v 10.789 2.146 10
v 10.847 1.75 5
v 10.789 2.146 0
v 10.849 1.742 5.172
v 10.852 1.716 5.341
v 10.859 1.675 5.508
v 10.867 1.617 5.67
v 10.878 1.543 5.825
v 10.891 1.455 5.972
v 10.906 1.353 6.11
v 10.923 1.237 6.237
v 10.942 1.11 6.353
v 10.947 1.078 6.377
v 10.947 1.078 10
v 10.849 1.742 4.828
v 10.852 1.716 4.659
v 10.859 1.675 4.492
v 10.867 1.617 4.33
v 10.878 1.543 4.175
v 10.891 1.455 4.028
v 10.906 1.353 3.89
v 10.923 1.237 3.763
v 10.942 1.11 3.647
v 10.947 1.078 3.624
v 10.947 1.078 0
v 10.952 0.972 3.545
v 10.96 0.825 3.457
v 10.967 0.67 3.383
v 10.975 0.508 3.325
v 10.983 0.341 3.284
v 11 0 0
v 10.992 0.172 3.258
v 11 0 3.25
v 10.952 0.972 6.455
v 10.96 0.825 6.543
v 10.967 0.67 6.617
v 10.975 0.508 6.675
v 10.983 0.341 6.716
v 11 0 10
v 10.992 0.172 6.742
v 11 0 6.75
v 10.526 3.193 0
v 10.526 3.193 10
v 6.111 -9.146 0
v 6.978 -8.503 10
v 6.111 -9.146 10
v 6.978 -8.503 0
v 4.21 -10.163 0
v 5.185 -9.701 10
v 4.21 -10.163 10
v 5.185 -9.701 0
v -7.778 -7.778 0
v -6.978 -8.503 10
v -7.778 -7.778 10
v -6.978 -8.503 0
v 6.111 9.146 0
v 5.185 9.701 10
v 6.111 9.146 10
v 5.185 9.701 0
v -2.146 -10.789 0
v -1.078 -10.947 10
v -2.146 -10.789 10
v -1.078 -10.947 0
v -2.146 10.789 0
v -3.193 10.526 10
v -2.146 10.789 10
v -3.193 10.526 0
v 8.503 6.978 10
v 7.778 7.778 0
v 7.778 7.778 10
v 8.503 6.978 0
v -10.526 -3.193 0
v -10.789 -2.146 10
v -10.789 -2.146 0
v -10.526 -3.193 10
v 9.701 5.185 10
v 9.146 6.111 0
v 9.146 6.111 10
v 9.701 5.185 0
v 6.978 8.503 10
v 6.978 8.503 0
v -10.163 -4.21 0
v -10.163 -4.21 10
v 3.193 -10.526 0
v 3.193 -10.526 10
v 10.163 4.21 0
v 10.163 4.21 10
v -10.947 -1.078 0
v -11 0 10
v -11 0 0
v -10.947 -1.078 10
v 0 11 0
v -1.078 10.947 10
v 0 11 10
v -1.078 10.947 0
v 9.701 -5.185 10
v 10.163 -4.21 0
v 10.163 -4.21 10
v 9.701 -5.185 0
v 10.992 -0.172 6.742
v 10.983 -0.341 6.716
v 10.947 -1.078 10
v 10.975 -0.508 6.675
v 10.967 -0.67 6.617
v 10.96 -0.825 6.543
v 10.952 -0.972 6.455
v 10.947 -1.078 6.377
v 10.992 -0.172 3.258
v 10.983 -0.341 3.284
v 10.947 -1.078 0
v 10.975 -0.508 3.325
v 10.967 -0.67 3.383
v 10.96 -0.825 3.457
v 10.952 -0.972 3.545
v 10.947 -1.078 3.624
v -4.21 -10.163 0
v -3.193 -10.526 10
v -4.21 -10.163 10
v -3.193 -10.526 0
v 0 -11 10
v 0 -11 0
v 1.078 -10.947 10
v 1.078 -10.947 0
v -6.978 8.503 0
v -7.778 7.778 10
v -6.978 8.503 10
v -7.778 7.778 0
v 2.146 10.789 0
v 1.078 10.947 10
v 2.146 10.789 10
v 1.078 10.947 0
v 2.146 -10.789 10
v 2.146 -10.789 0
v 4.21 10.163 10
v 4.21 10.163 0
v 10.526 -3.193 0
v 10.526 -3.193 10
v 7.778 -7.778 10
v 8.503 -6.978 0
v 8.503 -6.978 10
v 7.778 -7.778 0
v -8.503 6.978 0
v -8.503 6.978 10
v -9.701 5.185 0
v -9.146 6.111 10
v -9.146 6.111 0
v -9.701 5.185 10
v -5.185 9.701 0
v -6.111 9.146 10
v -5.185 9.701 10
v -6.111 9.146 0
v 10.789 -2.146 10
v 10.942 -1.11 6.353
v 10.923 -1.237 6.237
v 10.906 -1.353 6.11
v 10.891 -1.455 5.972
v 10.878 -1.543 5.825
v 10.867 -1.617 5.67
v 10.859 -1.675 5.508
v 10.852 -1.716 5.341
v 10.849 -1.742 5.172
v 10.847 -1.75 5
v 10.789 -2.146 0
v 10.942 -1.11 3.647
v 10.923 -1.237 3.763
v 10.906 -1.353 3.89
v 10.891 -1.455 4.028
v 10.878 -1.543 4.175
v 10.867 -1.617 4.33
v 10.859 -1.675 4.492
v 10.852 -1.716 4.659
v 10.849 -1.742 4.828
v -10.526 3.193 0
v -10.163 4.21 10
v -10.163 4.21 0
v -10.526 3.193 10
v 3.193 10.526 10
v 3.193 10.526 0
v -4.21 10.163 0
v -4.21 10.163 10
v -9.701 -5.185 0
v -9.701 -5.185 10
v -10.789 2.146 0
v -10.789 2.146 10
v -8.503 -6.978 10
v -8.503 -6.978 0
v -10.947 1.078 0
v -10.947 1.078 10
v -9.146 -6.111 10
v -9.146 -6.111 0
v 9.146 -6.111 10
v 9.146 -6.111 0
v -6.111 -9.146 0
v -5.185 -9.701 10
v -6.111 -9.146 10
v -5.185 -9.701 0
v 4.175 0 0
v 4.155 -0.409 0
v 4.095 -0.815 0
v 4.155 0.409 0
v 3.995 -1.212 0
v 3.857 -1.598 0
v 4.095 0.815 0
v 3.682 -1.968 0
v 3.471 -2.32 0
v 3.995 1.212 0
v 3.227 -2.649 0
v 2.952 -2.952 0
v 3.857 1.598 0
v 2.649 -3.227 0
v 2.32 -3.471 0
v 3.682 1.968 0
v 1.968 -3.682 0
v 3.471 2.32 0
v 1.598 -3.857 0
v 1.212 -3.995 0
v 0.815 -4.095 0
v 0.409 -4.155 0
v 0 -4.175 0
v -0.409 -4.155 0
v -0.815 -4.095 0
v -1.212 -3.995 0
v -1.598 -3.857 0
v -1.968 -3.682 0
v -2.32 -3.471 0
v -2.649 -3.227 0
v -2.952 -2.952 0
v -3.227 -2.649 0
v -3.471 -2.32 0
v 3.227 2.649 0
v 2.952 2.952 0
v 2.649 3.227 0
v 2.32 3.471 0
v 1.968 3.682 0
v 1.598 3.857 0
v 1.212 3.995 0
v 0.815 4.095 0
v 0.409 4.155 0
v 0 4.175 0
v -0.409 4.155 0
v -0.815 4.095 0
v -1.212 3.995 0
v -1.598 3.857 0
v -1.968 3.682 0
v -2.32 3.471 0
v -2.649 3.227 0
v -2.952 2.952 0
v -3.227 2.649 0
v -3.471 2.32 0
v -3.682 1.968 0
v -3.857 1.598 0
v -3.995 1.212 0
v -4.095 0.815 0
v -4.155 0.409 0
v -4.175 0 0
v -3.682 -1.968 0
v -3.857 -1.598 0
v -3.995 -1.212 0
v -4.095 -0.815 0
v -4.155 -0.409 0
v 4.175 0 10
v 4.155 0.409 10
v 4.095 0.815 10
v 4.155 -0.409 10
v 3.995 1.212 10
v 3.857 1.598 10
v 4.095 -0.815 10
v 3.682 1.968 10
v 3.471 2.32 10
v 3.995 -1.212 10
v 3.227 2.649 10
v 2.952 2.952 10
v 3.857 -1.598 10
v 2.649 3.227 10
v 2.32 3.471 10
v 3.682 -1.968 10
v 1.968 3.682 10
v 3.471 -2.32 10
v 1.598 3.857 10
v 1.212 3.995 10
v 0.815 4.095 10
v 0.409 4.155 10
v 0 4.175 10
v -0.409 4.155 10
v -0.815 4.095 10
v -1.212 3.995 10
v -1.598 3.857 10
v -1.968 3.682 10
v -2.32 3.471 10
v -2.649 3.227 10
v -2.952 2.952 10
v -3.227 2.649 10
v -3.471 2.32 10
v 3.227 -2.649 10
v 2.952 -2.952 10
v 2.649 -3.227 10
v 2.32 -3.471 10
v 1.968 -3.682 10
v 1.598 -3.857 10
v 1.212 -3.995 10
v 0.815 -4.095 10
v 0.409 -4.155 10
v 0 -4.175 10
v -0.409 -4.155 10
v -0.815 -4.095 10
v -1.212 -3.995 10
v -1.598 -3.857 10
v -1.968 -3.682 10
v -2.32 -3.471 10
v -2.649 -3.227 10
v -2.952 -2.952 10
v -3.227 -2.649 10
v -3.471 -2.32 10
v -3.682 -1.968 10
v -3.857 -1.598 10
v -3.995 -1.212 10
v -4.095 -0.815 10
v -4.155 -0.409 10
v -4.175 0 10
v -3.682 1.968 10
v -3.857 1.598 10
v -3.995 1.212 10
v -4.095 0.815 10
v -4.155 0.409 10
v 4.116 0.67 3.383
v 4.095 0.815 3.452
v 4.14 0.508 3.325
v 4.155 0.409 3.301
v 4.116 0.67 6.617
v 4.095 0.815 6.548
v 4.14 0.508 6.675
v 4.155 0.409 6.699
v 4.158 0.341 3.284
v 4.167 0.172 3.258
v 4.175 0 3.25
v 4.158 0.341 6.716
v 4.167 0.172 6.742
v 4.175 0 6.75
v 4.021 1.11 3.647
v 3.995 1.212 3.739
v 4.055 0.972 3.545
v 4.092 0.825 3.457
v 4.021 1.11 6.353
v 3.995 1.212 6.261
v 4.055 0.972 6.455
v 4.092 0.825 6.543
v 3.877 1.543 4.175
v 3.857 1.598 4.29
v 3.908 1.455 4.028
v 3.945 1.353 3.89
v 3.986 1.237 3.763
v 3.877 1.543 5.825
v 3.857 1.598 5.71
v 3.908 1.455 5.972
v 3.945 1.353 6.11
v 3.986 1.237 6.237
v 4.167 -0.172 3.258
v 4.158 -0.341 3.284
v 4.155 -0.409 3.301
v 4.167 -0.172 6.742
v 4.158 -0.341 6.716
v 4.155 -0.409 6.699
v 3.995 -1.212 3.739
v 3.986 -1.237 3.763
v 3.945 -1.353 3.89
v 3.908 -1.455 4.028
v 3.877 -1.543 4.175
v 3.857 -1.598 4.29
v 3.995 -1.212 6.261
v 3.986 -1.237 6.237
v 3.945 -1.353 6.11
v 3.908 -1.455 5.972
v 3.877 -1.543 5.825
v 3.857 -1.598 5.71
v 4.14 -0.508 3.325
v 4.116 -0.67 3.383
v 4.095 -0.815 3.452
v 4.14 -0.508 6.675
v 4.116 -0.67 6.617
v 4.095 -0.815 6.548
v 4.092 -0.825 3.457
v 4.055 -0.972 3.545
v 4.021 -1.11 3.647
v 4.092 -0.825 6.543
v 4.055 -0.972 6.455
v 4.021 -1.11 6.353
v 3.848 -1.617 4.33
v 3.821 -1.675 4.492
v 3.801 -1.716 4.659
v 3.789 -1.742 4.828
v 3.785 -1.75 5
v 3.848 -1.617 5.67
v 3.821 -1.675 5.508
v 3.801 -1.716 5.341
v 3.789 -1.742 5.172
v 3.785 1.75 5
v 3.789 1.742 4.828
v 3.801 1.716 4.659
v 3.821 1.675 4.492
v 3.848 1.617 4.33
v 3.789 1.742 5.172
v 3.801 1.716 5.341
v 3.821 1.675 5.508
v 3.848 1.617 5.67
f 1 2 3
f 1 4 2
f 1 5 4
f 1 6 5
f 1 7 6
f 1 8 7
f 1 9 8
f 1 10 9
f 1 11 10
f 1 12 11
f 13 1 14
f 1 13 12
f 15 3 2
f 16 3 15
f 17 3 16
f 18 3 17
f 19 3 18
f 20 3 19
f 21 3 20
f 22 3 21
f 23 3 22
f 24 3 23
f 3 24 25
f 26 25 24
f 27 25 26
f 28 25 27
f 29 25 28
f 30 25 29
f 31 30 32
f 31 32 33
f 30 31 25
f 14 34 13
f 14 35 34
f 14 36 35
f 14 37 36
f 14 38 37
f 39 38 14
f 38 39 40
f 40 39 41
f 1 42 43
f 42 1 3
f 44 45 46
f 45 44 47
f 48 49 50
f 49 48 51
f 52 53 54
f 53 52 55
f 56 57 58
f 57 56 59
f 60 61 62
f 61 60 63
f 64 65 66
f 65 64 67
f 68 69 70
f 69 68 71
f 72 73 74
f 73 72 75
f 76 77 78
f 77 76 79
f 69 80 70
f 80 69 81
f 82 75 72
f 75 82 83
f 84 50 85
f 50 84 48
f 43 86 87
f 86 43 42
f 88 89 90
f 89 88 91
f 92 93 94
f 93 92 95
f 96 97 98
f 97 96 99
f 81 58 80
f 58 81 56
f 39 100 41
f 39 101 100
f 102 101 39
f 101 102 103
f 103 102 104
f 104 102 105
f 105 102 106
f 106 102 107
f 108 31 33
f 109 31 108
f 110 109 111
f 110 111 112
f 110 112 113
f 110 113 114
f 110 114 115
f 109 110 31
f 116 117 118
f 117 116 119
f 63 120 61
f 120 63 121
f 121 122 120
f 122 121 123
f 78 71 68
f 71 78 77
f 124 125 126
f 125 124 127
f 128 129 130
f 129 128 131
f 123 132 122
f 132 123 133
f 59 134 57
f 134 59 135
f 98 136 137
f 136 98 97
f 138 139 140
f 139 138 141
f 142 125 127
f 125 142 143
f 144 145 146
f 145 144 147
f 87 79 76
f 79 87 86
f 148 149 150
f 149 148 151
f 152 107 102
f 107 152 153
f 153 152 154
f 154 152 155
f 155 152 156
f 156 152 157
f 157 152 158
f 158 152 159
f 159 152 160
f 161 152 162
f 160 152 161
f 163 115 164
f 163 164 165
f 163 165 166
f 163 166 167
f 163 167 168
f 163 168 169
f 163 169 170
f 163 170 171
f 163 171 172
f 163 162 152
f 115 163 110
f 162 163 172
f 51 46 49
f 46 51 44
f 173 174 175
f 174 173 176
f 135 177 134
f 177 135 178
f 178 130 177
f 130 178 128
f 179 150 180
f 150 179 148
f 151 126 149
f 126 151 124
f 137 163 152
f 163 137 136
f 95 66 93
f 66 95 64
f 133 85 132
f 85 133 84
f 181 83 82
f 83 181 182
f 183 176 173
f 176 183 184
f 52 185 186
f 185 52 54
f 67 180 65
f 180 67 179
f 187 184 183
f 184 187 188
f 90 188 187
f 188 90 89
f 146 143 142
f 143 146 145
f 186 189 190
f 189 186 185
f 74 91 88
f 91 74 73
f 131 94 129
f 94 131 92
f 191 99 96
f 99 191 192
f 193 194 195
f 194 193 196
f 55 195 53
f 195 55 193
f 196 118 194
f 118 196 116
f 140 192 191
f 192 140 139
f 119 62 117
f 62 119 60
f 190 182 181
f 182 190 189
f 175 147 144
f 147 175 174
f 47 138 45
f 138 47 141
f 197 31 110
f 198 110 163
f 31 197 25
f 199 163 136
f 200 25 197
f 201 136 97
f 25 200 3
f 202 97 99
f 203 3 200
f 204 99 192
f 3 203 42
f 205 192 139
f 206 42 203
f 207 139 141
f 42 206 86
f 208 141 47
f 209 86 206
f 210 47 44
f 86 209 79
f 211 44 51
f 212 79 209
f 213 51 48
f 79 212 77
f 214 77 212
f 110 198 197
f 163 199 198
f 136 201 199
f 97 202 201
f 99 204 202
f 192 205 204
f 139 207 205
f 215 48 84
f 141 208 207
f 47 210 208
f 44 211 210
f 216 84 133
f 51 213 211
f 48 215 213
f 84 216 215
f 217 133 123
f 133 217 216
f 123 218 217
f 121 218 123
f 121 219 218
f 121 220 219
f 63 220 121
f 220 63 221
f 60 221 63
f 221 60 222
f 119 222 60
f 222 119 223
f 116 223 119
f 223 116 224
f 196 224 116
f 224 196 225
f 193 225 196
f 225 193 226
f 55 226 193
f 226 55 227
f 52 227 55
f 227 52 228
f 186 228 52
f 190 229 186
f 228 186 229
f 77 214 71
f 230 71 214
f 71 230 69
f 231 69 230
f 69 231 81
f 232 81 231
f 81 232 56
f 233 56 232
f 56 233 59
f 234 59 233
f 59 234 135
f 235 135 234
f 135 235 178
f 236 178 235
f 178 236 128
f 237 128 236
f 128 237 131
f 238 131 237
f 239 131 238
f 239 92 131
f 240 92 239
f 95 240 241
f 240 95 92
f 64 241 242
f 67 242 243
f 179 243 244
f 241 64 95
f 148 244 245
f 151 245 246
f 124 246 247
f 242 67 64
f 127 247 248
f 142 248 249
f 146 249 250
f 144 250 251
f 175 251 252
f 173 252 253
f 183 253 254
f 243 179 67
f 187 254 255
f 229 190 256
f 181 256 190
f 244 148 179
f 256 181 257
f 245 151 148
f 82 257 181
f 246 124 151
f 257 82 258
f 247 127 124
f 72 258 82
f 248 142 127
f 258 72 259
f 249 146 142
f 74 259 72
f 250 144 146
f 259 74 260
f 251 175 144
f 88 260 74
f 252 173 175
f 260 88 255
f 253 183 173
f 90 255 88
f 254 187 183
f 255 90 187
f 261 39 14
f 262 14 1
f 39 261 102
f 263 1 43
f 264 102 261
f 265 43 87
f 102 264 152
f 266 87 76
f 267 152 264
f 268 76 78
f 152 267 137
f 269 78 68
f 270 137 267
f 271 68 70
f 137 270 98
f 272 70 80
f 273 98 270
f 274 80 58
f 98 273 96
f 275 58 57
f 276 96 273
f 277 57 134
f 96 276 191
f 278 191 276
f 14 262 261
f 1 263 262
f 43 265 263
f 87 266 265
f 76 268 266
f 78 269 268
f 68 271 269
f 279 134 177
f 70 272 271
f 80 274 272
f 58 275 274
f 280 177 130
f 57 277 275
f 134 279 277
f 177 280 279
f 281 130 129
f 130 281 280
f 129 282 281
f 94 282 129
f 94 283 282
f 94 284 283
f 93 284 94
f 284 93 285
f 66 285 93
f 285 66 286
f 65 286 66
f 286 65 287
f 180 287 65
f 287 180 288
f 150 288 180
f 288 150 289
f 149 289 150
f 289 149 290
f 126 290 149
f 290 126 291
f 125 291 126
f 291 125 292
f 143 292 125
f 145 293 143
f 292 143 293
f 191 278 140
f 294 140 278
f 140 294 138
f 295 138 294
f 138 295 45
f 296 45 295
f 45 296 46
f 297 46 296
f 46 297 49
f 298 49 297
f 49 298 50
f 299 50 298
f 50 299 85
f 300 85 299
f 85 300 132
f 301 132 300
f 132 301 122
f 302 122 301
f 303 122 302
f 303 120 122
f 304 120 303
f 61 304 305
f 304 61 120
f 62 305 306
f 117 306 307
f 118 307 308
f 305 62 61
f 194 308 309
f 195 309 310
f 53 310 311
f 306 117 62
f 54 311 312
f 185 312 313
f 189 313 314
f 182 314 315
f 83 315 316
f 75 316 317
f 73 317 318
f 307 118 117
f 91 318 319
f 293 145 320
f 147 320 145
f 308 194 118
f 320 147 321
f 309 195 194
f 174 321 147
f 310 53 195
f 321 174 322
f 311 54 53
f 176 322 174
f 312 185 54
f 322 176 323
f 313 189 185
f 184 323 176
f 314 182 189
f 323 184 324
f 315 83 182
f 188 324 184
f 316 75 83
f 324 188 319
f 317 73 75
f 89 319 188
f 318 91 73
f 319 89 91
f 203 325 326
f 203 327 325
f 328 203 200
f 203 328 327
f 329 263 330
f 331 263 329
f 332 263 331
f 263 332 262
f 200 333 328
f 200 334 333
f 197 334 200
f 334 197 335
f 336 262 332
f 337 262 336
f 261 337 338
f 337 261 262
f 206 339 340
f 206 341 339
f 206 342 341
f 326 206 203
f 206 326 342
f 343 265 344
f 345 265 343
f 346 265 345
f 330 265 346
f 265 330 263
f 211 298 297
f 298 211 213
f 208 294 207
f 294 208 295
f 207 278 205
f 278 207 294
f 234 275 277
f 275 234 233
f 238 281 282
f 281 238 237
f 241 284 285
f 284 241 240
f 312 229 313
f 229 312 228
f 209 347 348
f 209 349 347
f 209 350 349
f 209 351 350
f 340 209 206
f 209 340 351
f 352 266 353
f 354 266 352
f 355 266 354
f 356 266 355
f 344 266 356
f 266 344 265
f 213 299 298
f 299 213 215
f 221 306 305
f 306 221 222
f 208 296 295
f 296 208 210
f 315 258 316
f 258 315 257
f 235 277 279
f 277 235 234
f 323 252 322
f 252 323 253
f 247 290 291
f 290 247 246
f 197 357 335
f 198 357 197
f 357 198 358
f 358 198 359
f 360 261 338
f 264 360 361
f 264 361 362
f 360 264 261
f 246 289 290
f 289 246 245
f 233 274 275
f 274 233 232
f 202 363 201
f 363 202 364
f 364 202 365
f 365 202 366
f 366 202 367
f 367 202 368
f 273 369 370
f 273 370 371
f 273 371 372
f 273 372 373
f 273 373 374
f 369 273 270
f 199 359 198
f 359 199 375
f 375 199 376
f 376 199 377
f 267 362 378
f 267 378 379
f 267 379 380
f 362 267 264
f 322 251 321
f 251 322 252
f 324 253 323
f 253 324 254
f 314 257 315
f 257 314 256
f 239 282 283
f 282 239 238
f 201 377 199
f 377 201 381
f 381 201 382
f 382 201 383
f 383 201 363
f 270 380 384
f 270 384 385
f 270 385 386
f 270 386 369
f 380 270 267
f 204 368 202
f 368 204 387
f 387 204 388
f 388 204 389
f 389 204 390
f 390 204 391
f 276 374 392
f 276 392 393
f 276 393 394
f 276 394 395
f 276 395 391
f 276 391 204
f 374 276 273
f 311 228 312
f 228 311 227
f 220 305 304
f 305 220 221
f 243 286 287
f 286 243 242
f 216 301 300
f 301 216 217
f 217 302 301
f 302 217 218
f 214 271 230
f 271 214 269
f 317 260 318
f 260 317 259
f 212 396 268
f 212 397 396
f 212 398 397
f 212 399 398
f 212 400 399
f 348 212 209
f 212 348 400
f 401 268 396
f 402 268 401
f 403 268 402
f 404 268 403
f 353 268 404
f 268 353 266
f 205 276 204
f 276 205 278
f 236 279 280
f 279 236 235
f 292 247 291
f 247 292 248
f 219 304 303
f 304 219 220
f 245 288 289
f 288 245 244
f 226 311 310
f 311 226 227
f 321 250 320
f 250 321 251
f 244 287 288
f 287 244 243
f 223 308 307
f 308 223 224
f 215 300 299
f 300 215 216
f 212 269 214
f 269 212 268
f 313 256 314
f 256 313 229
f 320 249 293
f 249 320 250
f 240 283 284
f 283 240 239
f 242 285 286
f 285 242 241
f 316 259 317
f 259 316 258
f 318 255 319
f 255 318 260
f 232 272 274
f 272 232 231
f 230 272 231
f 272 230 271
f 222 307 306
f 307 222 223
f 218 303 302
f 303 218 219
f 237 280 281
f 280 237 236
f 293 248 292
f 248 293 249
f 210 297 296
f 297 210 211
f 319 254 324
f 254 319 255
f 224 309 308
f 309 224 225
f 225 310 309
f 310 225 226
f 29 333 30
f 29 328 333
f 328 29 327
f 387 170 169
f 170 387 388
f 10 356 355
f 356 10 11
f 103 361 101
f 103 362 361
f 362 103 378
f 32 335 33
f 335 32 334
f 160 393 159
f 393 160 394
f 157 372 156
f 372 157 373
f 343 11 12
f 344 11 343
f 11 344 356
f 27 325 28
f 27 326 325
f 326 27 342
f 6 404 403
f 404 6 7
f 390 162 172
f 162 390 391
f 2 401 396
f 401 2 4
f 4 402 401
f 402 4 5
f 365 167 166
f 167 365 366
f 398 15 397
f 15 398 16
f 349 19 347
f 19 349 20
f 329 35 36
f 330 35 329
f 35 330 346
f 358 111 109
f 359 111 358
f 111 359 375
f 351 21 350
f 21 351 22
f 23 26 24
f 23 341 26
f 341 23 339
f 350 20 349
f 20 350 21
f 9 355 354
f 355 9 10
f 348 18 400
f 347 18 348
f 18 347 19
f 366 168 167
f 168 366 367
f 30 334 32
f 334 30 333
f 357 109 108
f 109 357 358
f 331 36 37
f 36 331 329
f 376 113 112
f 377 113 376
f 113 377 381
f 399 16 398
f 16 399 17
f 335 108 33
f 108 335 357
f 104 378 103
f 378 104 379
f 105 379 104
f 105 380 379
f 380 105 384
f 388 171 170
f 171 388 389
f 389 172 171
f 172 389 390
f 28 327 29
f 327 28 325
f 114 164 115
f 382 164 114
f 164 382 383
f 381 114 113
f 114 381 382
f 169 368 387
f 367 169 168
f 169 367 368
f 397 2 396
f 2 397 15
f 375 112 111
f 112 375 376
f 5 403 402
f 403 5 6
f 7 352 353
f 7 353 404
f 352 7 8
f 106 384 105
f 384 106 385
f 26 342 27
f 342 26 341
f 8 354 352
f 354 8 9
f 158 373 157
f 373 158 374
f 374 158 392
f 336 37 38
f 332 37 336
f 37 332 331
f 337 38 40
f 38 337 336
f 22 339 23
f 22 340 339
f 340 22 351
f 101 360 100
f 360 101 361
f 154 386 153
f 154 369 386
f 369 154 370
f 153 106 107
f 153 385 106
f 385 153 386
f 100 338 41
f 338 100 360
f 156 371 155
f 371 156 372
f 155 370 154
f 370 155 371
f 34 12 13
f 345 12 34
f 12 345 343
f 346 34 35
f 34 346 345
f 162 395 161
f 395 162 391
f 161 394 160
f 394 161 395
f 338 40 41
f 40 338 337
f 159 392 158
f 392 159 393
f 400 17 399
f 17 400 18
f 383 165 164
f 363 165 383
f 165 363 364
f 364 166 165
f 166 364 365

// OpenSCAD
// file: parameters.scad
// =============================================================================
// Gen-AG Vernier flux-claw hyper-nano — WOUND-AWARE (HARD GATE)
// Improve Gen-AG: tighter m2m 5.11, more copper (165 t), run_clear 0.55
// =============================================================================

wire_awg            = 26;
wire_od             = 0.45;
turns               = 165;      // +10 vs Gen-AG 155
fill                = 0.70;
layers_per_face     = 2;
wind_build_axial    = layers_per_face * wire_od * fill;   // 0.63
wind_build_radial   = 3 * wire_od * fill;                 // 0.945

coil_id_r           = 19.5;
coil_od_r           = 63.0;
span_deg            = 25.0;     // 12 stations; vernier vs 16-pole equiv
former_web          = 1.55;
flange_t            = 0.60;
wall                = 1.2;
slot_w              = 2.4;
mount_hole          = 3.5;
tab_len             = 7.0;

former_bare_h       = former_web + 2 * flange_t;            // 2.75
coil_envelope_h     = former_bare_h + 2 * wind_build_axial; // 4.01

run_clear           = 0.55;
gap_spacer_h        = run_clear + wind_build_axial;         // 1.18
m2m                 = coil_envelope_h + 2 * run_clear;      // 5.11 (beats Gen-AG 5.46)

coil_stations       = 12;
bay_r_in            = coil_id_r - 2.0 - wind_build_radial;
bay_r_out           = coil_od_r + 2.0 + wind_build_radial;
bay_span            = span_deg + 4.0;
bay_offset          = 2.0;
stator_thick        = former_bare_h;
stator_od           = 156.0;
shaft_clear_stator  = 36.0;
coil_mount_r        = 28.0;

// Dual rotors: 8+8 Ø20 vernier poles + 24+24 Ø5 flux claws / edge assists
large_pocket_d      = 20.3;
small_pocket_d      = 5.3;
pocket_h            = 5.2;
large_n             = 8;
R_large             = 50.0;
R_small_inner       = 36.0;     // claw inner
R_small_mid         = 50.0;
R_small_outer       = 64.0;
carrier_od          = 152.0;
carrier_thick       = 7.5;
hub_h               = 10.0;
hub_od              = 30.0;
rotor_b_offset_deg  = 22.5;     // vernier offset

shaft_bore          = 8.35;
bearing_d           = 21.85;
bearing_h           = 7.2;
m3_clear            = 3.5;
bolt_r_inner        = 36.0;
bolt_n_inner        = 6;
flange_bolt_r       = 72.0;
flange_bolt_n       = 6;
brace_r             = 68.0;
brace_d             = 4.3;
brace_n             = 4;

spacer_pad_od       = 14.0;
spacer_pad_id       = m3_clear;
endbell_od          = 156.0;
endbell_thick       = 8.0;
endbell_shaft_clear = 10.0;

$fn = 64;
// main file
// Gen-AG shaft collar — print ×2–4
include <parameters.scad>;
$fn = 64;
od = 22; id = shaft_bore; h = 10; set_d = 3.5;
difference() {
    cylinder(d=od, h=h);
    translate([0, 0, -0.1]) cylinder(d=id, h=h + 0.2);
    translate([0, 0, h/2]) rotate([0, 90, 0]) cylinder(d=set_d, h=od);
}
